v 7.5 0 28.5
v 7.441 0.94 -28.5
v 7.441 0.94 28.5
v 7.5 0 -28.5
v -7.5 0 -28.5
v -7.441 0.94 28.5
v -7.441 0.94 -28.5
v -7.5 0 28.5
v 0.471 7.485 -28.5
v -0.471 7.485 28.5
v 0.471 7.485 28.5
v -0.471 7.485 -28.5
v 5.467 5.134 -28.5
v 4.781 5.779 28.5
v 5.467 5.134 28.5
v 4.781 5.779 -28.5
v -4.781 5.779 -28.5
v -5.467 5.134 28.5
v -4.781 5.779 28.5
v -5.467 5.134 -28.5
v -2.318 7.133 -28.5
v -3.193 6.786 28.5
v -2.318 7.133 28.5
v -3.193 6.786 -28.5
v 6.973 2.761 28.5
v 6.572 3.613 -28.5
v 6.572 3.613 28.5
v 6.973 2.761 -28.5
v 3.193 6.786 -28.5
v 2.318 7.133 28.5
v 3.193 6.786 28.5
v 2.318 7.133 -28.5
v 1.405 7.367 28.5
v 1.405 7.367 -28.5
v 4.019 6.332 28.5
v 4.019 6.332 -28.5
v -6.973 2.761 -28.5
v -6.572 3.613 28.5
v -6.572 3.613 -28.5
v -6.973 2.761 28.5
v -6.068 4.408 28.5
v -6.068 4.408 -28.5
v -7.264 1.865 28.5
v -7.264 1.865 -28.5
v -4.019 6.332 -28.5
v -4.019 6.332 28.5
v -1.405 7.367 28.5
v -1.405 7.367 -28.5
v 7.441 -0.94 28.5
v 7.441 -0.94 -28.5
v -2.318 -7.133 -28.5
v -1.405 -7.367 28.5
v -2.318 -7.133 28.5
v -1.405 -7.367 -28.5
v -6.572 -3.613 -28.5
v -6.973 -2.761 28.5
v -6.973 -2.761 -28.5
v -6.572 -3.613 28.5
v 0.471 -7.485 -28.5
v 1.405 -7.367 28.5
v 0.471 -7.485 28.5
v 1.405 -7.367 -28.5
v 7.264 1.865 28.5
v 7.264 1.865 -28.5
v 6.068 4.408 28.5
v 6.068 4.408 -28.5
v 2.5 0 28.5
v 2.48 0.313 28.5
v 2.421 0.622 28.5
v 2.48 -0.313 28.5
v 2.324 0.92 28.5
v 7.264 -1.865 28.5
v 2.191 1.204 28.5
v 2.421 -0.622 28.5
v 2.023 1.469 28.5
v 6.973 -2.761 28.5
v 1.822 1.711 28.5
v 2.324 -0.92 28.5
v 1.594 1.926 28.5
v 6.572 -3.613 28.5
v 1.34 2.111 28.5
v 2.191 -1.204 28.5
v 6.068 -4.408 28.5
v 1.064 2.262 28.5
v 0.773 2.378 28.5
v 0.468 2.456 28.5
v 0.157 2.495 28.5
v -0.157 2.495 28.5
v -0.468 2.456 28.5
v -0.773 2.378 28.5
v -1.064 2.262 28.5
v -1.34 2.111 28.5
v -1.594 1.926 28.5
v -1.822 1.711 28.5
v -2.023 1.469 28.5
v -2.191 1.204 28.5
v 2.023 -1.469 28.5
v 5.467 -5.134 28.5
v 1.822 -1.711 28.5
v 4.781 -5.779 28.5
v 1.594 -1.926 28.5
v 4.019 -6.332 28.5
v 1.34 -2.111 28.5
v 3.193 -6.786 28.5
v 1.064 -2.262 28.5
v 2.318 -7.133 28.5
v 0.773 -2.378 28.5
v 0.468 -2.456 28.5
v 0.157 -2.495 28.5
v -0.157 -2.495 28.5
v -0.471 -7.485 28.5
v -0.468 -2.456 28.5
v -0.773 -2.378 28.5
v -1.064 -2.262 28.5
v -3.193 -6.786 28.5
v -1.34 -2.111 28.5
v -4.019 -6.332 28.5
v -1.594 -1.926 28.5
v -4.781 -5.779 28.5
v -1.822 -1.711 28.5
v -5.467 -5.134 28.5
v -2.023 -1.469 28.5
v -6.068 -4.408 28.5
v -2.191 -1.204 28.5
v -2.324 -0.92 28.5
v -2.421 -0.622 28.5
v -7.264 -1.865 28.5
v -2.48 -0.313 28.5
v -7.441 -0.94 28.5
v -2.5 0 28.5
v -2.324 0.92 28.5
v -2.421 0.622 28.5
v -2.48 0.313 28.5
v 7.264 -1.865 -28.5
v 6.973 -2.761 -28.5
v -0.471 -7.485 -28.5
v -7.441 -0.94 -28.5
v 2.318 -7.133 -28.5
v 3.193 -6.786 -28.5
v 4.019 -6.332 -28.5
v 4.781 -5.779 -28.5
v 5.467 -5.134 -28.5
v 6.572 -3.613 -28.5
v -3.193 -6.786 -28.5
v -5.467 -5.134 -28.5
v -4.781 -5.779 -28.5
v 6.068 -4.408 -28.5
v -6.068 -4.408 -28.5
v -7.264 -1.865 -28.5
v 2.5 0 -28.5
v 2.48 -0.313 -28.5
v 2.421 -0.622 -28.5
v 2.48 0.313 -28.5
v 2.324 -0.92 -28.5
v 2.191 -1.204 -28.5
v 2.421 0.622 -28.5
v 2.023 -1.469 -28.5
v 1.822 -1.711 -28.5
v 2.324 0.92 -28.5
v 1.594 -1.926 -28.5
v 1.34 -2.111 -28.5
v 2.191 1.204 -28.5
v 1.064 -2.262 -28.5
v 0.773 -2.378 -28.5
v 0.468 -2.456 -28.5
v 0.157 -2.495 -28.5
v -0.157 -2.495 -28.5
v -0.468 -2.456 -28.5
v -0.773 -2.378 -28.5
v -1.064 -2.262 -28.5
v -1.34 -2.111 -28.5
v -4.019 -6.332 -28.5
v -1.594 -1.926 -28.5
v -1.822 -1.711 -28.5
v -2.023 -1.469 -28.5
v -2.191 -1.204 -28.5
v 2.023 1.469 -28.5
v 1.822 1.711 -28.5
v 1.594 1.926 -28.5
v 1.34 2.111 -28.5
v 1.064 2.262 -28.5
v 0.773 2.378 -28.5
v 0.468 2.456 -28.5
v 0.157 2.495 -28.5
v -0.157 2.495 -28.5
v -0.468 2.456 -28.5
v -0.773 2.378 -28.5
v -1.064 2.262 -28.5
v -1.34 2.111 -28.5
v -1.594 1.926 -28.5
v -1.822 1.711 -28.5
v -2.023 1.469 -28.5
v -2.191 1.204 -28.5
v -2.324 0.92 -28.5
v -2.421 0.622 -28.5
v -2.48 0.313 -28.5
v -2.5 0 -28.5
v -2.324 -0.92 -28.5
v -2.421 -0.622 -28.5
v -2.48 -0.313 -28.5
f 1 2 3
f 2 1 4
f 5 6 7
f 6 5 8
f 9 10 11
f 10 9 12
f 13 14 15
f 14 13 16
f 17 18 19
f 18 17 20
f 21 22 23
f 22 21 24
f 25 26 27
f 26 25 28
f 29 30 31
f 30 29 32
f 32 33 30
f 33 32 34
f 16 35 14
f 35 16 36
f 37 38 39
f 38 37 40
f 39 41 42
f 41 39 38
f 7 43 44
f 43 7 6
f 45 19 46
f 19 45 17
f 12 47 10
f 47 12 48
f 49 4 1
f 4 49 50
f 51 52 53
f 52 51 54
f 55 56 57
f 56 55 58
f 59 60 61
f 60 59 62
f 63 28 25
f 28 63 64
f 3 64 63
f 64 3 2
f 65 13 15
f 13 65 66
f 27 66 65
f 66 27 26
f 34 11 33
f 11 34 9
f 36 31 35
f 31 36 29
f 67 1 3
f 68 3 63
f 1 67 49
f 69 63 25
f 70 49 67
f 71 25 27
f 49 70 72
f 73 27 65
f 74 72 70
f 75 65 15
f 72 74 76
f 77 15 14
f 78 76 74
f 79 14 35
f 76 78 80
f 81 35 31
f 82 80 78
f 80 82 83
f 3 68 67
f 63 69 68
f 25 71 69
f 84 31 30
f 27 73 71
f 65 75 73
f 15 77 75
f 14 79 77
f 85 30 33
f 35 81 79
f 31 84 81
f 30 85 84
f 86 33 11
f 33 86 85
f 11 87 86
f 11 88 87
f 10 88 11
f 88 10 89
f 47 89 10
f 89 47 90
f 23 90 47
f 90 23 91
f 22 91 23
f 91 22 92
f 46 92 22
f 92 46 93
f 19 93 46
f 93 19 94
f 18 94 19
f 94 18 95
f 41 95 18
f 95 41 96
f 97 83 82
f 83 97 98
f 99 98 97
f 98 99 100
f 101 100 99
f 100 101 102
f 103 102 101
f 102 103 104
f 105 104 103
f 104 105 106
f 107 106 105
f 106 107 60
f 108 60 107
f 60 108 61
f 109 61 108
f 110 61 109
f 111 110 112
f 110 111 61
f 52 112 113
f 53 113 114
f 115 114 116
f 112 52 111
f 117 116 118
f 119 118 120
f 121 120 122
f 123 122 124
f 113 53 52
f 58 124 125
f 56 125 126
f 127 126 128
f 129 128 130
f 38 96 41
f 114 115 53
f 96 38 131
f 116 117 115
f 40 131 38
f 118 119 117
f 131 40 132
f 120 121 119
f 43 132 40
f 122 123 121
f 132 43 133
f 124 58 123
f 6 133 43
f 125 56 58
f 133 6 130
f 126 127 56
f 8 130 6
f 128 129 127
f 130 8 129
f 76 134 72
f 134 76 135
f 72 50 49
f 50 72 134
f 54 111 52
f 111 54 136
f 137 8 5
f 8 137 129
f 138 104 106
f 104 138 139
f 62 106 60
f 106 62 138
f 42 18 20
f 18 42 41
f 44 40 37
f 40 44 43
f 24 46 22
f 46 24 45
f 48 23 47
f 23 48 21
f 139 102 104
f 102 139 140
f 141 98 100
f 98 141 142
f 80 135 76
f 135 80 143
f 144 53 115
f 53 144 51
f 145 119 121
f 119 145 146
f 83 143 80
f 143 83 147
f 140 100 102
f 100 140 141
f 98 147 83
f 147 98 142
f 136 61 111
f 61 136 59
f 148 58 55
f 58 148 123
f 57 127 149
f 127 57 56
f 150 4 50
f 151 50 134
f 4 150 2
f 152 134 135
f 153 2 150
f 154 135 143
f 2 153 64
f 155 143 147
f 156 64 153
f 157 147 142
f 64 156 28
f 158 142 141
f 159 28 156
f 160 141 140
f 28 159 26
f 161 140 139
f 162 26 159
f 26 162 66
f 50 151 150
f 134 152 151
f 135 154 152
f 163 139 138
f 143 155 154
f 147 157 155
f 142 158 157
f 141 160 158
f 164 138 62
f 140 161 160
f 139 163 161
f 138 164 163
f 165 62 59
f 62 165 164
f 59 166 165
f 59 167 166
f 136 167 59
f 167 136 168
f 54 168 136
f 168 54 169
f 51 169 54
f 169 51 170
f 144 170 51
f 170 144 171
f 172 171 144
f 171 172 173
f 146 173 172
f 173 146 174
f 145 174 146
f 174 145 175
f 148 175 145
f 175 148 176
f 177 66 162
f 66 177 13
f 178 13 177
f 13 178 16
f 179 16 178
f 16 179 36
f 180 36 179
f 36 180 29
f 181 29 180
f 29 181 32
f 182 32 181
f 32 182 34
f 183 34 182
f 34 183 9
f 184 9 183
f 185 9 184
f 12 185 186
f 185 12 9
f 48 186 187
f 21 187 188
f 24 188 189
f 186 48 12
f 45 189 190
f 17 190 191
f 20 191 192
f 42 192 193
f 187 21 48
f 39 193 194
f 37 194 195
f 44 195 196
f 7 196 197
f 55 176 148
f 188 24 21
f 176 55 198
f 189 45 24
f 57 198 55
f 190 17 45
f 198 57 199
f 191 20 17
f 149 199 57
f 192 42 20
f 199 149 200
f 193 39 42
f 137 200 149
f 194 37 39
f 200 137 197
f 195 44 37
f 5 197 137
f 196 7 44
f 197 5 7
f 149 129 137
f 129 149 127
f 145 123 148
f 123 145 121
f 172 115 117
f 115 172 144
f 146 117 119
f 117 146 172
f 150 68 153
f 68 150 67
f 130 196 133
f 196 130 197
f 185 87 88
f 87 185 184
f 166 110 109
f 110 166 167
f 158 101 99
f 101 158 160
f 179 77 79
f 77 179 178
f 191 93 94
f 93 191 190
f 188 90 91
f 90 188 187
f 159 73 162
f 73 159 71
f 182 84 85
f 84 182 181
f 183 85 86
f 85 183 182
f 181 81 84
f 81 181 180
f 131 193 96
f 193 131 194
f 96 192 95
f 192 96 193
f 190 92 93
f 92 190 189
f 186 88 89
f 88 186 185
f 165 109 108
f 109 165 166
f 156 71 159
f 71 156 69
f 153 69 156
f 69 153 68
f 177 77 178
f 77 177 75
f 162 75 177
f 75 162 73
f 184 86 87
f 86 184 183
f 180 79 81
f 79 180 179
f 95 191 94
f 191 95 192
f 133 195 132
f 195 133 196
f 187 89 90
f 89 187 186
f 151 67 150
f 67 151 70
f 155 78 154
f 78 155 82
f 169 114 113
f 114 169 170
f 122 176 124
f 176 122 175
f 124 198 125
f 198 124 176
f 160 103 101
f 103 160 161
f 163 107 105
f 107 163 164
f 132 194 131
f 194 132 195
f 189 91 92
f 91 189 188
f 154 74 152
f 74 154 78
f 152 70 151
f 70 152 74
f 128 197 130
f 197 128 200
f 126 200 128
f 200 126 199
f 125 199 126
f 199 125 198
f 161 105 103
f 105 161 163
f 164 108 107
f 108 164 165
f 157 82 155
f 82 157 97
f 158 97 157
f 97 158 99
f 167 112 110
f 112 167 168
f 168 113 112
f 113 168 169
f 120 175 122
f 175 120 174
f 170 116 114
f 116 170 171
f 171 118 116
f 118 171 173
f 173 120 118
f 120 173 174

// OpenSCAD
$fn = 50;


difference() {
	union() {
		translate(v = [0, 0, -28.5000000000]) {
			cylinder(h = 57, r = 7.5000000000);
		}
	}
	union() {
		translate(v = [0, 0, -100.0000000000]) {
			cylinder(h = 200, r = 2.5000000000);
		}
	}
}
